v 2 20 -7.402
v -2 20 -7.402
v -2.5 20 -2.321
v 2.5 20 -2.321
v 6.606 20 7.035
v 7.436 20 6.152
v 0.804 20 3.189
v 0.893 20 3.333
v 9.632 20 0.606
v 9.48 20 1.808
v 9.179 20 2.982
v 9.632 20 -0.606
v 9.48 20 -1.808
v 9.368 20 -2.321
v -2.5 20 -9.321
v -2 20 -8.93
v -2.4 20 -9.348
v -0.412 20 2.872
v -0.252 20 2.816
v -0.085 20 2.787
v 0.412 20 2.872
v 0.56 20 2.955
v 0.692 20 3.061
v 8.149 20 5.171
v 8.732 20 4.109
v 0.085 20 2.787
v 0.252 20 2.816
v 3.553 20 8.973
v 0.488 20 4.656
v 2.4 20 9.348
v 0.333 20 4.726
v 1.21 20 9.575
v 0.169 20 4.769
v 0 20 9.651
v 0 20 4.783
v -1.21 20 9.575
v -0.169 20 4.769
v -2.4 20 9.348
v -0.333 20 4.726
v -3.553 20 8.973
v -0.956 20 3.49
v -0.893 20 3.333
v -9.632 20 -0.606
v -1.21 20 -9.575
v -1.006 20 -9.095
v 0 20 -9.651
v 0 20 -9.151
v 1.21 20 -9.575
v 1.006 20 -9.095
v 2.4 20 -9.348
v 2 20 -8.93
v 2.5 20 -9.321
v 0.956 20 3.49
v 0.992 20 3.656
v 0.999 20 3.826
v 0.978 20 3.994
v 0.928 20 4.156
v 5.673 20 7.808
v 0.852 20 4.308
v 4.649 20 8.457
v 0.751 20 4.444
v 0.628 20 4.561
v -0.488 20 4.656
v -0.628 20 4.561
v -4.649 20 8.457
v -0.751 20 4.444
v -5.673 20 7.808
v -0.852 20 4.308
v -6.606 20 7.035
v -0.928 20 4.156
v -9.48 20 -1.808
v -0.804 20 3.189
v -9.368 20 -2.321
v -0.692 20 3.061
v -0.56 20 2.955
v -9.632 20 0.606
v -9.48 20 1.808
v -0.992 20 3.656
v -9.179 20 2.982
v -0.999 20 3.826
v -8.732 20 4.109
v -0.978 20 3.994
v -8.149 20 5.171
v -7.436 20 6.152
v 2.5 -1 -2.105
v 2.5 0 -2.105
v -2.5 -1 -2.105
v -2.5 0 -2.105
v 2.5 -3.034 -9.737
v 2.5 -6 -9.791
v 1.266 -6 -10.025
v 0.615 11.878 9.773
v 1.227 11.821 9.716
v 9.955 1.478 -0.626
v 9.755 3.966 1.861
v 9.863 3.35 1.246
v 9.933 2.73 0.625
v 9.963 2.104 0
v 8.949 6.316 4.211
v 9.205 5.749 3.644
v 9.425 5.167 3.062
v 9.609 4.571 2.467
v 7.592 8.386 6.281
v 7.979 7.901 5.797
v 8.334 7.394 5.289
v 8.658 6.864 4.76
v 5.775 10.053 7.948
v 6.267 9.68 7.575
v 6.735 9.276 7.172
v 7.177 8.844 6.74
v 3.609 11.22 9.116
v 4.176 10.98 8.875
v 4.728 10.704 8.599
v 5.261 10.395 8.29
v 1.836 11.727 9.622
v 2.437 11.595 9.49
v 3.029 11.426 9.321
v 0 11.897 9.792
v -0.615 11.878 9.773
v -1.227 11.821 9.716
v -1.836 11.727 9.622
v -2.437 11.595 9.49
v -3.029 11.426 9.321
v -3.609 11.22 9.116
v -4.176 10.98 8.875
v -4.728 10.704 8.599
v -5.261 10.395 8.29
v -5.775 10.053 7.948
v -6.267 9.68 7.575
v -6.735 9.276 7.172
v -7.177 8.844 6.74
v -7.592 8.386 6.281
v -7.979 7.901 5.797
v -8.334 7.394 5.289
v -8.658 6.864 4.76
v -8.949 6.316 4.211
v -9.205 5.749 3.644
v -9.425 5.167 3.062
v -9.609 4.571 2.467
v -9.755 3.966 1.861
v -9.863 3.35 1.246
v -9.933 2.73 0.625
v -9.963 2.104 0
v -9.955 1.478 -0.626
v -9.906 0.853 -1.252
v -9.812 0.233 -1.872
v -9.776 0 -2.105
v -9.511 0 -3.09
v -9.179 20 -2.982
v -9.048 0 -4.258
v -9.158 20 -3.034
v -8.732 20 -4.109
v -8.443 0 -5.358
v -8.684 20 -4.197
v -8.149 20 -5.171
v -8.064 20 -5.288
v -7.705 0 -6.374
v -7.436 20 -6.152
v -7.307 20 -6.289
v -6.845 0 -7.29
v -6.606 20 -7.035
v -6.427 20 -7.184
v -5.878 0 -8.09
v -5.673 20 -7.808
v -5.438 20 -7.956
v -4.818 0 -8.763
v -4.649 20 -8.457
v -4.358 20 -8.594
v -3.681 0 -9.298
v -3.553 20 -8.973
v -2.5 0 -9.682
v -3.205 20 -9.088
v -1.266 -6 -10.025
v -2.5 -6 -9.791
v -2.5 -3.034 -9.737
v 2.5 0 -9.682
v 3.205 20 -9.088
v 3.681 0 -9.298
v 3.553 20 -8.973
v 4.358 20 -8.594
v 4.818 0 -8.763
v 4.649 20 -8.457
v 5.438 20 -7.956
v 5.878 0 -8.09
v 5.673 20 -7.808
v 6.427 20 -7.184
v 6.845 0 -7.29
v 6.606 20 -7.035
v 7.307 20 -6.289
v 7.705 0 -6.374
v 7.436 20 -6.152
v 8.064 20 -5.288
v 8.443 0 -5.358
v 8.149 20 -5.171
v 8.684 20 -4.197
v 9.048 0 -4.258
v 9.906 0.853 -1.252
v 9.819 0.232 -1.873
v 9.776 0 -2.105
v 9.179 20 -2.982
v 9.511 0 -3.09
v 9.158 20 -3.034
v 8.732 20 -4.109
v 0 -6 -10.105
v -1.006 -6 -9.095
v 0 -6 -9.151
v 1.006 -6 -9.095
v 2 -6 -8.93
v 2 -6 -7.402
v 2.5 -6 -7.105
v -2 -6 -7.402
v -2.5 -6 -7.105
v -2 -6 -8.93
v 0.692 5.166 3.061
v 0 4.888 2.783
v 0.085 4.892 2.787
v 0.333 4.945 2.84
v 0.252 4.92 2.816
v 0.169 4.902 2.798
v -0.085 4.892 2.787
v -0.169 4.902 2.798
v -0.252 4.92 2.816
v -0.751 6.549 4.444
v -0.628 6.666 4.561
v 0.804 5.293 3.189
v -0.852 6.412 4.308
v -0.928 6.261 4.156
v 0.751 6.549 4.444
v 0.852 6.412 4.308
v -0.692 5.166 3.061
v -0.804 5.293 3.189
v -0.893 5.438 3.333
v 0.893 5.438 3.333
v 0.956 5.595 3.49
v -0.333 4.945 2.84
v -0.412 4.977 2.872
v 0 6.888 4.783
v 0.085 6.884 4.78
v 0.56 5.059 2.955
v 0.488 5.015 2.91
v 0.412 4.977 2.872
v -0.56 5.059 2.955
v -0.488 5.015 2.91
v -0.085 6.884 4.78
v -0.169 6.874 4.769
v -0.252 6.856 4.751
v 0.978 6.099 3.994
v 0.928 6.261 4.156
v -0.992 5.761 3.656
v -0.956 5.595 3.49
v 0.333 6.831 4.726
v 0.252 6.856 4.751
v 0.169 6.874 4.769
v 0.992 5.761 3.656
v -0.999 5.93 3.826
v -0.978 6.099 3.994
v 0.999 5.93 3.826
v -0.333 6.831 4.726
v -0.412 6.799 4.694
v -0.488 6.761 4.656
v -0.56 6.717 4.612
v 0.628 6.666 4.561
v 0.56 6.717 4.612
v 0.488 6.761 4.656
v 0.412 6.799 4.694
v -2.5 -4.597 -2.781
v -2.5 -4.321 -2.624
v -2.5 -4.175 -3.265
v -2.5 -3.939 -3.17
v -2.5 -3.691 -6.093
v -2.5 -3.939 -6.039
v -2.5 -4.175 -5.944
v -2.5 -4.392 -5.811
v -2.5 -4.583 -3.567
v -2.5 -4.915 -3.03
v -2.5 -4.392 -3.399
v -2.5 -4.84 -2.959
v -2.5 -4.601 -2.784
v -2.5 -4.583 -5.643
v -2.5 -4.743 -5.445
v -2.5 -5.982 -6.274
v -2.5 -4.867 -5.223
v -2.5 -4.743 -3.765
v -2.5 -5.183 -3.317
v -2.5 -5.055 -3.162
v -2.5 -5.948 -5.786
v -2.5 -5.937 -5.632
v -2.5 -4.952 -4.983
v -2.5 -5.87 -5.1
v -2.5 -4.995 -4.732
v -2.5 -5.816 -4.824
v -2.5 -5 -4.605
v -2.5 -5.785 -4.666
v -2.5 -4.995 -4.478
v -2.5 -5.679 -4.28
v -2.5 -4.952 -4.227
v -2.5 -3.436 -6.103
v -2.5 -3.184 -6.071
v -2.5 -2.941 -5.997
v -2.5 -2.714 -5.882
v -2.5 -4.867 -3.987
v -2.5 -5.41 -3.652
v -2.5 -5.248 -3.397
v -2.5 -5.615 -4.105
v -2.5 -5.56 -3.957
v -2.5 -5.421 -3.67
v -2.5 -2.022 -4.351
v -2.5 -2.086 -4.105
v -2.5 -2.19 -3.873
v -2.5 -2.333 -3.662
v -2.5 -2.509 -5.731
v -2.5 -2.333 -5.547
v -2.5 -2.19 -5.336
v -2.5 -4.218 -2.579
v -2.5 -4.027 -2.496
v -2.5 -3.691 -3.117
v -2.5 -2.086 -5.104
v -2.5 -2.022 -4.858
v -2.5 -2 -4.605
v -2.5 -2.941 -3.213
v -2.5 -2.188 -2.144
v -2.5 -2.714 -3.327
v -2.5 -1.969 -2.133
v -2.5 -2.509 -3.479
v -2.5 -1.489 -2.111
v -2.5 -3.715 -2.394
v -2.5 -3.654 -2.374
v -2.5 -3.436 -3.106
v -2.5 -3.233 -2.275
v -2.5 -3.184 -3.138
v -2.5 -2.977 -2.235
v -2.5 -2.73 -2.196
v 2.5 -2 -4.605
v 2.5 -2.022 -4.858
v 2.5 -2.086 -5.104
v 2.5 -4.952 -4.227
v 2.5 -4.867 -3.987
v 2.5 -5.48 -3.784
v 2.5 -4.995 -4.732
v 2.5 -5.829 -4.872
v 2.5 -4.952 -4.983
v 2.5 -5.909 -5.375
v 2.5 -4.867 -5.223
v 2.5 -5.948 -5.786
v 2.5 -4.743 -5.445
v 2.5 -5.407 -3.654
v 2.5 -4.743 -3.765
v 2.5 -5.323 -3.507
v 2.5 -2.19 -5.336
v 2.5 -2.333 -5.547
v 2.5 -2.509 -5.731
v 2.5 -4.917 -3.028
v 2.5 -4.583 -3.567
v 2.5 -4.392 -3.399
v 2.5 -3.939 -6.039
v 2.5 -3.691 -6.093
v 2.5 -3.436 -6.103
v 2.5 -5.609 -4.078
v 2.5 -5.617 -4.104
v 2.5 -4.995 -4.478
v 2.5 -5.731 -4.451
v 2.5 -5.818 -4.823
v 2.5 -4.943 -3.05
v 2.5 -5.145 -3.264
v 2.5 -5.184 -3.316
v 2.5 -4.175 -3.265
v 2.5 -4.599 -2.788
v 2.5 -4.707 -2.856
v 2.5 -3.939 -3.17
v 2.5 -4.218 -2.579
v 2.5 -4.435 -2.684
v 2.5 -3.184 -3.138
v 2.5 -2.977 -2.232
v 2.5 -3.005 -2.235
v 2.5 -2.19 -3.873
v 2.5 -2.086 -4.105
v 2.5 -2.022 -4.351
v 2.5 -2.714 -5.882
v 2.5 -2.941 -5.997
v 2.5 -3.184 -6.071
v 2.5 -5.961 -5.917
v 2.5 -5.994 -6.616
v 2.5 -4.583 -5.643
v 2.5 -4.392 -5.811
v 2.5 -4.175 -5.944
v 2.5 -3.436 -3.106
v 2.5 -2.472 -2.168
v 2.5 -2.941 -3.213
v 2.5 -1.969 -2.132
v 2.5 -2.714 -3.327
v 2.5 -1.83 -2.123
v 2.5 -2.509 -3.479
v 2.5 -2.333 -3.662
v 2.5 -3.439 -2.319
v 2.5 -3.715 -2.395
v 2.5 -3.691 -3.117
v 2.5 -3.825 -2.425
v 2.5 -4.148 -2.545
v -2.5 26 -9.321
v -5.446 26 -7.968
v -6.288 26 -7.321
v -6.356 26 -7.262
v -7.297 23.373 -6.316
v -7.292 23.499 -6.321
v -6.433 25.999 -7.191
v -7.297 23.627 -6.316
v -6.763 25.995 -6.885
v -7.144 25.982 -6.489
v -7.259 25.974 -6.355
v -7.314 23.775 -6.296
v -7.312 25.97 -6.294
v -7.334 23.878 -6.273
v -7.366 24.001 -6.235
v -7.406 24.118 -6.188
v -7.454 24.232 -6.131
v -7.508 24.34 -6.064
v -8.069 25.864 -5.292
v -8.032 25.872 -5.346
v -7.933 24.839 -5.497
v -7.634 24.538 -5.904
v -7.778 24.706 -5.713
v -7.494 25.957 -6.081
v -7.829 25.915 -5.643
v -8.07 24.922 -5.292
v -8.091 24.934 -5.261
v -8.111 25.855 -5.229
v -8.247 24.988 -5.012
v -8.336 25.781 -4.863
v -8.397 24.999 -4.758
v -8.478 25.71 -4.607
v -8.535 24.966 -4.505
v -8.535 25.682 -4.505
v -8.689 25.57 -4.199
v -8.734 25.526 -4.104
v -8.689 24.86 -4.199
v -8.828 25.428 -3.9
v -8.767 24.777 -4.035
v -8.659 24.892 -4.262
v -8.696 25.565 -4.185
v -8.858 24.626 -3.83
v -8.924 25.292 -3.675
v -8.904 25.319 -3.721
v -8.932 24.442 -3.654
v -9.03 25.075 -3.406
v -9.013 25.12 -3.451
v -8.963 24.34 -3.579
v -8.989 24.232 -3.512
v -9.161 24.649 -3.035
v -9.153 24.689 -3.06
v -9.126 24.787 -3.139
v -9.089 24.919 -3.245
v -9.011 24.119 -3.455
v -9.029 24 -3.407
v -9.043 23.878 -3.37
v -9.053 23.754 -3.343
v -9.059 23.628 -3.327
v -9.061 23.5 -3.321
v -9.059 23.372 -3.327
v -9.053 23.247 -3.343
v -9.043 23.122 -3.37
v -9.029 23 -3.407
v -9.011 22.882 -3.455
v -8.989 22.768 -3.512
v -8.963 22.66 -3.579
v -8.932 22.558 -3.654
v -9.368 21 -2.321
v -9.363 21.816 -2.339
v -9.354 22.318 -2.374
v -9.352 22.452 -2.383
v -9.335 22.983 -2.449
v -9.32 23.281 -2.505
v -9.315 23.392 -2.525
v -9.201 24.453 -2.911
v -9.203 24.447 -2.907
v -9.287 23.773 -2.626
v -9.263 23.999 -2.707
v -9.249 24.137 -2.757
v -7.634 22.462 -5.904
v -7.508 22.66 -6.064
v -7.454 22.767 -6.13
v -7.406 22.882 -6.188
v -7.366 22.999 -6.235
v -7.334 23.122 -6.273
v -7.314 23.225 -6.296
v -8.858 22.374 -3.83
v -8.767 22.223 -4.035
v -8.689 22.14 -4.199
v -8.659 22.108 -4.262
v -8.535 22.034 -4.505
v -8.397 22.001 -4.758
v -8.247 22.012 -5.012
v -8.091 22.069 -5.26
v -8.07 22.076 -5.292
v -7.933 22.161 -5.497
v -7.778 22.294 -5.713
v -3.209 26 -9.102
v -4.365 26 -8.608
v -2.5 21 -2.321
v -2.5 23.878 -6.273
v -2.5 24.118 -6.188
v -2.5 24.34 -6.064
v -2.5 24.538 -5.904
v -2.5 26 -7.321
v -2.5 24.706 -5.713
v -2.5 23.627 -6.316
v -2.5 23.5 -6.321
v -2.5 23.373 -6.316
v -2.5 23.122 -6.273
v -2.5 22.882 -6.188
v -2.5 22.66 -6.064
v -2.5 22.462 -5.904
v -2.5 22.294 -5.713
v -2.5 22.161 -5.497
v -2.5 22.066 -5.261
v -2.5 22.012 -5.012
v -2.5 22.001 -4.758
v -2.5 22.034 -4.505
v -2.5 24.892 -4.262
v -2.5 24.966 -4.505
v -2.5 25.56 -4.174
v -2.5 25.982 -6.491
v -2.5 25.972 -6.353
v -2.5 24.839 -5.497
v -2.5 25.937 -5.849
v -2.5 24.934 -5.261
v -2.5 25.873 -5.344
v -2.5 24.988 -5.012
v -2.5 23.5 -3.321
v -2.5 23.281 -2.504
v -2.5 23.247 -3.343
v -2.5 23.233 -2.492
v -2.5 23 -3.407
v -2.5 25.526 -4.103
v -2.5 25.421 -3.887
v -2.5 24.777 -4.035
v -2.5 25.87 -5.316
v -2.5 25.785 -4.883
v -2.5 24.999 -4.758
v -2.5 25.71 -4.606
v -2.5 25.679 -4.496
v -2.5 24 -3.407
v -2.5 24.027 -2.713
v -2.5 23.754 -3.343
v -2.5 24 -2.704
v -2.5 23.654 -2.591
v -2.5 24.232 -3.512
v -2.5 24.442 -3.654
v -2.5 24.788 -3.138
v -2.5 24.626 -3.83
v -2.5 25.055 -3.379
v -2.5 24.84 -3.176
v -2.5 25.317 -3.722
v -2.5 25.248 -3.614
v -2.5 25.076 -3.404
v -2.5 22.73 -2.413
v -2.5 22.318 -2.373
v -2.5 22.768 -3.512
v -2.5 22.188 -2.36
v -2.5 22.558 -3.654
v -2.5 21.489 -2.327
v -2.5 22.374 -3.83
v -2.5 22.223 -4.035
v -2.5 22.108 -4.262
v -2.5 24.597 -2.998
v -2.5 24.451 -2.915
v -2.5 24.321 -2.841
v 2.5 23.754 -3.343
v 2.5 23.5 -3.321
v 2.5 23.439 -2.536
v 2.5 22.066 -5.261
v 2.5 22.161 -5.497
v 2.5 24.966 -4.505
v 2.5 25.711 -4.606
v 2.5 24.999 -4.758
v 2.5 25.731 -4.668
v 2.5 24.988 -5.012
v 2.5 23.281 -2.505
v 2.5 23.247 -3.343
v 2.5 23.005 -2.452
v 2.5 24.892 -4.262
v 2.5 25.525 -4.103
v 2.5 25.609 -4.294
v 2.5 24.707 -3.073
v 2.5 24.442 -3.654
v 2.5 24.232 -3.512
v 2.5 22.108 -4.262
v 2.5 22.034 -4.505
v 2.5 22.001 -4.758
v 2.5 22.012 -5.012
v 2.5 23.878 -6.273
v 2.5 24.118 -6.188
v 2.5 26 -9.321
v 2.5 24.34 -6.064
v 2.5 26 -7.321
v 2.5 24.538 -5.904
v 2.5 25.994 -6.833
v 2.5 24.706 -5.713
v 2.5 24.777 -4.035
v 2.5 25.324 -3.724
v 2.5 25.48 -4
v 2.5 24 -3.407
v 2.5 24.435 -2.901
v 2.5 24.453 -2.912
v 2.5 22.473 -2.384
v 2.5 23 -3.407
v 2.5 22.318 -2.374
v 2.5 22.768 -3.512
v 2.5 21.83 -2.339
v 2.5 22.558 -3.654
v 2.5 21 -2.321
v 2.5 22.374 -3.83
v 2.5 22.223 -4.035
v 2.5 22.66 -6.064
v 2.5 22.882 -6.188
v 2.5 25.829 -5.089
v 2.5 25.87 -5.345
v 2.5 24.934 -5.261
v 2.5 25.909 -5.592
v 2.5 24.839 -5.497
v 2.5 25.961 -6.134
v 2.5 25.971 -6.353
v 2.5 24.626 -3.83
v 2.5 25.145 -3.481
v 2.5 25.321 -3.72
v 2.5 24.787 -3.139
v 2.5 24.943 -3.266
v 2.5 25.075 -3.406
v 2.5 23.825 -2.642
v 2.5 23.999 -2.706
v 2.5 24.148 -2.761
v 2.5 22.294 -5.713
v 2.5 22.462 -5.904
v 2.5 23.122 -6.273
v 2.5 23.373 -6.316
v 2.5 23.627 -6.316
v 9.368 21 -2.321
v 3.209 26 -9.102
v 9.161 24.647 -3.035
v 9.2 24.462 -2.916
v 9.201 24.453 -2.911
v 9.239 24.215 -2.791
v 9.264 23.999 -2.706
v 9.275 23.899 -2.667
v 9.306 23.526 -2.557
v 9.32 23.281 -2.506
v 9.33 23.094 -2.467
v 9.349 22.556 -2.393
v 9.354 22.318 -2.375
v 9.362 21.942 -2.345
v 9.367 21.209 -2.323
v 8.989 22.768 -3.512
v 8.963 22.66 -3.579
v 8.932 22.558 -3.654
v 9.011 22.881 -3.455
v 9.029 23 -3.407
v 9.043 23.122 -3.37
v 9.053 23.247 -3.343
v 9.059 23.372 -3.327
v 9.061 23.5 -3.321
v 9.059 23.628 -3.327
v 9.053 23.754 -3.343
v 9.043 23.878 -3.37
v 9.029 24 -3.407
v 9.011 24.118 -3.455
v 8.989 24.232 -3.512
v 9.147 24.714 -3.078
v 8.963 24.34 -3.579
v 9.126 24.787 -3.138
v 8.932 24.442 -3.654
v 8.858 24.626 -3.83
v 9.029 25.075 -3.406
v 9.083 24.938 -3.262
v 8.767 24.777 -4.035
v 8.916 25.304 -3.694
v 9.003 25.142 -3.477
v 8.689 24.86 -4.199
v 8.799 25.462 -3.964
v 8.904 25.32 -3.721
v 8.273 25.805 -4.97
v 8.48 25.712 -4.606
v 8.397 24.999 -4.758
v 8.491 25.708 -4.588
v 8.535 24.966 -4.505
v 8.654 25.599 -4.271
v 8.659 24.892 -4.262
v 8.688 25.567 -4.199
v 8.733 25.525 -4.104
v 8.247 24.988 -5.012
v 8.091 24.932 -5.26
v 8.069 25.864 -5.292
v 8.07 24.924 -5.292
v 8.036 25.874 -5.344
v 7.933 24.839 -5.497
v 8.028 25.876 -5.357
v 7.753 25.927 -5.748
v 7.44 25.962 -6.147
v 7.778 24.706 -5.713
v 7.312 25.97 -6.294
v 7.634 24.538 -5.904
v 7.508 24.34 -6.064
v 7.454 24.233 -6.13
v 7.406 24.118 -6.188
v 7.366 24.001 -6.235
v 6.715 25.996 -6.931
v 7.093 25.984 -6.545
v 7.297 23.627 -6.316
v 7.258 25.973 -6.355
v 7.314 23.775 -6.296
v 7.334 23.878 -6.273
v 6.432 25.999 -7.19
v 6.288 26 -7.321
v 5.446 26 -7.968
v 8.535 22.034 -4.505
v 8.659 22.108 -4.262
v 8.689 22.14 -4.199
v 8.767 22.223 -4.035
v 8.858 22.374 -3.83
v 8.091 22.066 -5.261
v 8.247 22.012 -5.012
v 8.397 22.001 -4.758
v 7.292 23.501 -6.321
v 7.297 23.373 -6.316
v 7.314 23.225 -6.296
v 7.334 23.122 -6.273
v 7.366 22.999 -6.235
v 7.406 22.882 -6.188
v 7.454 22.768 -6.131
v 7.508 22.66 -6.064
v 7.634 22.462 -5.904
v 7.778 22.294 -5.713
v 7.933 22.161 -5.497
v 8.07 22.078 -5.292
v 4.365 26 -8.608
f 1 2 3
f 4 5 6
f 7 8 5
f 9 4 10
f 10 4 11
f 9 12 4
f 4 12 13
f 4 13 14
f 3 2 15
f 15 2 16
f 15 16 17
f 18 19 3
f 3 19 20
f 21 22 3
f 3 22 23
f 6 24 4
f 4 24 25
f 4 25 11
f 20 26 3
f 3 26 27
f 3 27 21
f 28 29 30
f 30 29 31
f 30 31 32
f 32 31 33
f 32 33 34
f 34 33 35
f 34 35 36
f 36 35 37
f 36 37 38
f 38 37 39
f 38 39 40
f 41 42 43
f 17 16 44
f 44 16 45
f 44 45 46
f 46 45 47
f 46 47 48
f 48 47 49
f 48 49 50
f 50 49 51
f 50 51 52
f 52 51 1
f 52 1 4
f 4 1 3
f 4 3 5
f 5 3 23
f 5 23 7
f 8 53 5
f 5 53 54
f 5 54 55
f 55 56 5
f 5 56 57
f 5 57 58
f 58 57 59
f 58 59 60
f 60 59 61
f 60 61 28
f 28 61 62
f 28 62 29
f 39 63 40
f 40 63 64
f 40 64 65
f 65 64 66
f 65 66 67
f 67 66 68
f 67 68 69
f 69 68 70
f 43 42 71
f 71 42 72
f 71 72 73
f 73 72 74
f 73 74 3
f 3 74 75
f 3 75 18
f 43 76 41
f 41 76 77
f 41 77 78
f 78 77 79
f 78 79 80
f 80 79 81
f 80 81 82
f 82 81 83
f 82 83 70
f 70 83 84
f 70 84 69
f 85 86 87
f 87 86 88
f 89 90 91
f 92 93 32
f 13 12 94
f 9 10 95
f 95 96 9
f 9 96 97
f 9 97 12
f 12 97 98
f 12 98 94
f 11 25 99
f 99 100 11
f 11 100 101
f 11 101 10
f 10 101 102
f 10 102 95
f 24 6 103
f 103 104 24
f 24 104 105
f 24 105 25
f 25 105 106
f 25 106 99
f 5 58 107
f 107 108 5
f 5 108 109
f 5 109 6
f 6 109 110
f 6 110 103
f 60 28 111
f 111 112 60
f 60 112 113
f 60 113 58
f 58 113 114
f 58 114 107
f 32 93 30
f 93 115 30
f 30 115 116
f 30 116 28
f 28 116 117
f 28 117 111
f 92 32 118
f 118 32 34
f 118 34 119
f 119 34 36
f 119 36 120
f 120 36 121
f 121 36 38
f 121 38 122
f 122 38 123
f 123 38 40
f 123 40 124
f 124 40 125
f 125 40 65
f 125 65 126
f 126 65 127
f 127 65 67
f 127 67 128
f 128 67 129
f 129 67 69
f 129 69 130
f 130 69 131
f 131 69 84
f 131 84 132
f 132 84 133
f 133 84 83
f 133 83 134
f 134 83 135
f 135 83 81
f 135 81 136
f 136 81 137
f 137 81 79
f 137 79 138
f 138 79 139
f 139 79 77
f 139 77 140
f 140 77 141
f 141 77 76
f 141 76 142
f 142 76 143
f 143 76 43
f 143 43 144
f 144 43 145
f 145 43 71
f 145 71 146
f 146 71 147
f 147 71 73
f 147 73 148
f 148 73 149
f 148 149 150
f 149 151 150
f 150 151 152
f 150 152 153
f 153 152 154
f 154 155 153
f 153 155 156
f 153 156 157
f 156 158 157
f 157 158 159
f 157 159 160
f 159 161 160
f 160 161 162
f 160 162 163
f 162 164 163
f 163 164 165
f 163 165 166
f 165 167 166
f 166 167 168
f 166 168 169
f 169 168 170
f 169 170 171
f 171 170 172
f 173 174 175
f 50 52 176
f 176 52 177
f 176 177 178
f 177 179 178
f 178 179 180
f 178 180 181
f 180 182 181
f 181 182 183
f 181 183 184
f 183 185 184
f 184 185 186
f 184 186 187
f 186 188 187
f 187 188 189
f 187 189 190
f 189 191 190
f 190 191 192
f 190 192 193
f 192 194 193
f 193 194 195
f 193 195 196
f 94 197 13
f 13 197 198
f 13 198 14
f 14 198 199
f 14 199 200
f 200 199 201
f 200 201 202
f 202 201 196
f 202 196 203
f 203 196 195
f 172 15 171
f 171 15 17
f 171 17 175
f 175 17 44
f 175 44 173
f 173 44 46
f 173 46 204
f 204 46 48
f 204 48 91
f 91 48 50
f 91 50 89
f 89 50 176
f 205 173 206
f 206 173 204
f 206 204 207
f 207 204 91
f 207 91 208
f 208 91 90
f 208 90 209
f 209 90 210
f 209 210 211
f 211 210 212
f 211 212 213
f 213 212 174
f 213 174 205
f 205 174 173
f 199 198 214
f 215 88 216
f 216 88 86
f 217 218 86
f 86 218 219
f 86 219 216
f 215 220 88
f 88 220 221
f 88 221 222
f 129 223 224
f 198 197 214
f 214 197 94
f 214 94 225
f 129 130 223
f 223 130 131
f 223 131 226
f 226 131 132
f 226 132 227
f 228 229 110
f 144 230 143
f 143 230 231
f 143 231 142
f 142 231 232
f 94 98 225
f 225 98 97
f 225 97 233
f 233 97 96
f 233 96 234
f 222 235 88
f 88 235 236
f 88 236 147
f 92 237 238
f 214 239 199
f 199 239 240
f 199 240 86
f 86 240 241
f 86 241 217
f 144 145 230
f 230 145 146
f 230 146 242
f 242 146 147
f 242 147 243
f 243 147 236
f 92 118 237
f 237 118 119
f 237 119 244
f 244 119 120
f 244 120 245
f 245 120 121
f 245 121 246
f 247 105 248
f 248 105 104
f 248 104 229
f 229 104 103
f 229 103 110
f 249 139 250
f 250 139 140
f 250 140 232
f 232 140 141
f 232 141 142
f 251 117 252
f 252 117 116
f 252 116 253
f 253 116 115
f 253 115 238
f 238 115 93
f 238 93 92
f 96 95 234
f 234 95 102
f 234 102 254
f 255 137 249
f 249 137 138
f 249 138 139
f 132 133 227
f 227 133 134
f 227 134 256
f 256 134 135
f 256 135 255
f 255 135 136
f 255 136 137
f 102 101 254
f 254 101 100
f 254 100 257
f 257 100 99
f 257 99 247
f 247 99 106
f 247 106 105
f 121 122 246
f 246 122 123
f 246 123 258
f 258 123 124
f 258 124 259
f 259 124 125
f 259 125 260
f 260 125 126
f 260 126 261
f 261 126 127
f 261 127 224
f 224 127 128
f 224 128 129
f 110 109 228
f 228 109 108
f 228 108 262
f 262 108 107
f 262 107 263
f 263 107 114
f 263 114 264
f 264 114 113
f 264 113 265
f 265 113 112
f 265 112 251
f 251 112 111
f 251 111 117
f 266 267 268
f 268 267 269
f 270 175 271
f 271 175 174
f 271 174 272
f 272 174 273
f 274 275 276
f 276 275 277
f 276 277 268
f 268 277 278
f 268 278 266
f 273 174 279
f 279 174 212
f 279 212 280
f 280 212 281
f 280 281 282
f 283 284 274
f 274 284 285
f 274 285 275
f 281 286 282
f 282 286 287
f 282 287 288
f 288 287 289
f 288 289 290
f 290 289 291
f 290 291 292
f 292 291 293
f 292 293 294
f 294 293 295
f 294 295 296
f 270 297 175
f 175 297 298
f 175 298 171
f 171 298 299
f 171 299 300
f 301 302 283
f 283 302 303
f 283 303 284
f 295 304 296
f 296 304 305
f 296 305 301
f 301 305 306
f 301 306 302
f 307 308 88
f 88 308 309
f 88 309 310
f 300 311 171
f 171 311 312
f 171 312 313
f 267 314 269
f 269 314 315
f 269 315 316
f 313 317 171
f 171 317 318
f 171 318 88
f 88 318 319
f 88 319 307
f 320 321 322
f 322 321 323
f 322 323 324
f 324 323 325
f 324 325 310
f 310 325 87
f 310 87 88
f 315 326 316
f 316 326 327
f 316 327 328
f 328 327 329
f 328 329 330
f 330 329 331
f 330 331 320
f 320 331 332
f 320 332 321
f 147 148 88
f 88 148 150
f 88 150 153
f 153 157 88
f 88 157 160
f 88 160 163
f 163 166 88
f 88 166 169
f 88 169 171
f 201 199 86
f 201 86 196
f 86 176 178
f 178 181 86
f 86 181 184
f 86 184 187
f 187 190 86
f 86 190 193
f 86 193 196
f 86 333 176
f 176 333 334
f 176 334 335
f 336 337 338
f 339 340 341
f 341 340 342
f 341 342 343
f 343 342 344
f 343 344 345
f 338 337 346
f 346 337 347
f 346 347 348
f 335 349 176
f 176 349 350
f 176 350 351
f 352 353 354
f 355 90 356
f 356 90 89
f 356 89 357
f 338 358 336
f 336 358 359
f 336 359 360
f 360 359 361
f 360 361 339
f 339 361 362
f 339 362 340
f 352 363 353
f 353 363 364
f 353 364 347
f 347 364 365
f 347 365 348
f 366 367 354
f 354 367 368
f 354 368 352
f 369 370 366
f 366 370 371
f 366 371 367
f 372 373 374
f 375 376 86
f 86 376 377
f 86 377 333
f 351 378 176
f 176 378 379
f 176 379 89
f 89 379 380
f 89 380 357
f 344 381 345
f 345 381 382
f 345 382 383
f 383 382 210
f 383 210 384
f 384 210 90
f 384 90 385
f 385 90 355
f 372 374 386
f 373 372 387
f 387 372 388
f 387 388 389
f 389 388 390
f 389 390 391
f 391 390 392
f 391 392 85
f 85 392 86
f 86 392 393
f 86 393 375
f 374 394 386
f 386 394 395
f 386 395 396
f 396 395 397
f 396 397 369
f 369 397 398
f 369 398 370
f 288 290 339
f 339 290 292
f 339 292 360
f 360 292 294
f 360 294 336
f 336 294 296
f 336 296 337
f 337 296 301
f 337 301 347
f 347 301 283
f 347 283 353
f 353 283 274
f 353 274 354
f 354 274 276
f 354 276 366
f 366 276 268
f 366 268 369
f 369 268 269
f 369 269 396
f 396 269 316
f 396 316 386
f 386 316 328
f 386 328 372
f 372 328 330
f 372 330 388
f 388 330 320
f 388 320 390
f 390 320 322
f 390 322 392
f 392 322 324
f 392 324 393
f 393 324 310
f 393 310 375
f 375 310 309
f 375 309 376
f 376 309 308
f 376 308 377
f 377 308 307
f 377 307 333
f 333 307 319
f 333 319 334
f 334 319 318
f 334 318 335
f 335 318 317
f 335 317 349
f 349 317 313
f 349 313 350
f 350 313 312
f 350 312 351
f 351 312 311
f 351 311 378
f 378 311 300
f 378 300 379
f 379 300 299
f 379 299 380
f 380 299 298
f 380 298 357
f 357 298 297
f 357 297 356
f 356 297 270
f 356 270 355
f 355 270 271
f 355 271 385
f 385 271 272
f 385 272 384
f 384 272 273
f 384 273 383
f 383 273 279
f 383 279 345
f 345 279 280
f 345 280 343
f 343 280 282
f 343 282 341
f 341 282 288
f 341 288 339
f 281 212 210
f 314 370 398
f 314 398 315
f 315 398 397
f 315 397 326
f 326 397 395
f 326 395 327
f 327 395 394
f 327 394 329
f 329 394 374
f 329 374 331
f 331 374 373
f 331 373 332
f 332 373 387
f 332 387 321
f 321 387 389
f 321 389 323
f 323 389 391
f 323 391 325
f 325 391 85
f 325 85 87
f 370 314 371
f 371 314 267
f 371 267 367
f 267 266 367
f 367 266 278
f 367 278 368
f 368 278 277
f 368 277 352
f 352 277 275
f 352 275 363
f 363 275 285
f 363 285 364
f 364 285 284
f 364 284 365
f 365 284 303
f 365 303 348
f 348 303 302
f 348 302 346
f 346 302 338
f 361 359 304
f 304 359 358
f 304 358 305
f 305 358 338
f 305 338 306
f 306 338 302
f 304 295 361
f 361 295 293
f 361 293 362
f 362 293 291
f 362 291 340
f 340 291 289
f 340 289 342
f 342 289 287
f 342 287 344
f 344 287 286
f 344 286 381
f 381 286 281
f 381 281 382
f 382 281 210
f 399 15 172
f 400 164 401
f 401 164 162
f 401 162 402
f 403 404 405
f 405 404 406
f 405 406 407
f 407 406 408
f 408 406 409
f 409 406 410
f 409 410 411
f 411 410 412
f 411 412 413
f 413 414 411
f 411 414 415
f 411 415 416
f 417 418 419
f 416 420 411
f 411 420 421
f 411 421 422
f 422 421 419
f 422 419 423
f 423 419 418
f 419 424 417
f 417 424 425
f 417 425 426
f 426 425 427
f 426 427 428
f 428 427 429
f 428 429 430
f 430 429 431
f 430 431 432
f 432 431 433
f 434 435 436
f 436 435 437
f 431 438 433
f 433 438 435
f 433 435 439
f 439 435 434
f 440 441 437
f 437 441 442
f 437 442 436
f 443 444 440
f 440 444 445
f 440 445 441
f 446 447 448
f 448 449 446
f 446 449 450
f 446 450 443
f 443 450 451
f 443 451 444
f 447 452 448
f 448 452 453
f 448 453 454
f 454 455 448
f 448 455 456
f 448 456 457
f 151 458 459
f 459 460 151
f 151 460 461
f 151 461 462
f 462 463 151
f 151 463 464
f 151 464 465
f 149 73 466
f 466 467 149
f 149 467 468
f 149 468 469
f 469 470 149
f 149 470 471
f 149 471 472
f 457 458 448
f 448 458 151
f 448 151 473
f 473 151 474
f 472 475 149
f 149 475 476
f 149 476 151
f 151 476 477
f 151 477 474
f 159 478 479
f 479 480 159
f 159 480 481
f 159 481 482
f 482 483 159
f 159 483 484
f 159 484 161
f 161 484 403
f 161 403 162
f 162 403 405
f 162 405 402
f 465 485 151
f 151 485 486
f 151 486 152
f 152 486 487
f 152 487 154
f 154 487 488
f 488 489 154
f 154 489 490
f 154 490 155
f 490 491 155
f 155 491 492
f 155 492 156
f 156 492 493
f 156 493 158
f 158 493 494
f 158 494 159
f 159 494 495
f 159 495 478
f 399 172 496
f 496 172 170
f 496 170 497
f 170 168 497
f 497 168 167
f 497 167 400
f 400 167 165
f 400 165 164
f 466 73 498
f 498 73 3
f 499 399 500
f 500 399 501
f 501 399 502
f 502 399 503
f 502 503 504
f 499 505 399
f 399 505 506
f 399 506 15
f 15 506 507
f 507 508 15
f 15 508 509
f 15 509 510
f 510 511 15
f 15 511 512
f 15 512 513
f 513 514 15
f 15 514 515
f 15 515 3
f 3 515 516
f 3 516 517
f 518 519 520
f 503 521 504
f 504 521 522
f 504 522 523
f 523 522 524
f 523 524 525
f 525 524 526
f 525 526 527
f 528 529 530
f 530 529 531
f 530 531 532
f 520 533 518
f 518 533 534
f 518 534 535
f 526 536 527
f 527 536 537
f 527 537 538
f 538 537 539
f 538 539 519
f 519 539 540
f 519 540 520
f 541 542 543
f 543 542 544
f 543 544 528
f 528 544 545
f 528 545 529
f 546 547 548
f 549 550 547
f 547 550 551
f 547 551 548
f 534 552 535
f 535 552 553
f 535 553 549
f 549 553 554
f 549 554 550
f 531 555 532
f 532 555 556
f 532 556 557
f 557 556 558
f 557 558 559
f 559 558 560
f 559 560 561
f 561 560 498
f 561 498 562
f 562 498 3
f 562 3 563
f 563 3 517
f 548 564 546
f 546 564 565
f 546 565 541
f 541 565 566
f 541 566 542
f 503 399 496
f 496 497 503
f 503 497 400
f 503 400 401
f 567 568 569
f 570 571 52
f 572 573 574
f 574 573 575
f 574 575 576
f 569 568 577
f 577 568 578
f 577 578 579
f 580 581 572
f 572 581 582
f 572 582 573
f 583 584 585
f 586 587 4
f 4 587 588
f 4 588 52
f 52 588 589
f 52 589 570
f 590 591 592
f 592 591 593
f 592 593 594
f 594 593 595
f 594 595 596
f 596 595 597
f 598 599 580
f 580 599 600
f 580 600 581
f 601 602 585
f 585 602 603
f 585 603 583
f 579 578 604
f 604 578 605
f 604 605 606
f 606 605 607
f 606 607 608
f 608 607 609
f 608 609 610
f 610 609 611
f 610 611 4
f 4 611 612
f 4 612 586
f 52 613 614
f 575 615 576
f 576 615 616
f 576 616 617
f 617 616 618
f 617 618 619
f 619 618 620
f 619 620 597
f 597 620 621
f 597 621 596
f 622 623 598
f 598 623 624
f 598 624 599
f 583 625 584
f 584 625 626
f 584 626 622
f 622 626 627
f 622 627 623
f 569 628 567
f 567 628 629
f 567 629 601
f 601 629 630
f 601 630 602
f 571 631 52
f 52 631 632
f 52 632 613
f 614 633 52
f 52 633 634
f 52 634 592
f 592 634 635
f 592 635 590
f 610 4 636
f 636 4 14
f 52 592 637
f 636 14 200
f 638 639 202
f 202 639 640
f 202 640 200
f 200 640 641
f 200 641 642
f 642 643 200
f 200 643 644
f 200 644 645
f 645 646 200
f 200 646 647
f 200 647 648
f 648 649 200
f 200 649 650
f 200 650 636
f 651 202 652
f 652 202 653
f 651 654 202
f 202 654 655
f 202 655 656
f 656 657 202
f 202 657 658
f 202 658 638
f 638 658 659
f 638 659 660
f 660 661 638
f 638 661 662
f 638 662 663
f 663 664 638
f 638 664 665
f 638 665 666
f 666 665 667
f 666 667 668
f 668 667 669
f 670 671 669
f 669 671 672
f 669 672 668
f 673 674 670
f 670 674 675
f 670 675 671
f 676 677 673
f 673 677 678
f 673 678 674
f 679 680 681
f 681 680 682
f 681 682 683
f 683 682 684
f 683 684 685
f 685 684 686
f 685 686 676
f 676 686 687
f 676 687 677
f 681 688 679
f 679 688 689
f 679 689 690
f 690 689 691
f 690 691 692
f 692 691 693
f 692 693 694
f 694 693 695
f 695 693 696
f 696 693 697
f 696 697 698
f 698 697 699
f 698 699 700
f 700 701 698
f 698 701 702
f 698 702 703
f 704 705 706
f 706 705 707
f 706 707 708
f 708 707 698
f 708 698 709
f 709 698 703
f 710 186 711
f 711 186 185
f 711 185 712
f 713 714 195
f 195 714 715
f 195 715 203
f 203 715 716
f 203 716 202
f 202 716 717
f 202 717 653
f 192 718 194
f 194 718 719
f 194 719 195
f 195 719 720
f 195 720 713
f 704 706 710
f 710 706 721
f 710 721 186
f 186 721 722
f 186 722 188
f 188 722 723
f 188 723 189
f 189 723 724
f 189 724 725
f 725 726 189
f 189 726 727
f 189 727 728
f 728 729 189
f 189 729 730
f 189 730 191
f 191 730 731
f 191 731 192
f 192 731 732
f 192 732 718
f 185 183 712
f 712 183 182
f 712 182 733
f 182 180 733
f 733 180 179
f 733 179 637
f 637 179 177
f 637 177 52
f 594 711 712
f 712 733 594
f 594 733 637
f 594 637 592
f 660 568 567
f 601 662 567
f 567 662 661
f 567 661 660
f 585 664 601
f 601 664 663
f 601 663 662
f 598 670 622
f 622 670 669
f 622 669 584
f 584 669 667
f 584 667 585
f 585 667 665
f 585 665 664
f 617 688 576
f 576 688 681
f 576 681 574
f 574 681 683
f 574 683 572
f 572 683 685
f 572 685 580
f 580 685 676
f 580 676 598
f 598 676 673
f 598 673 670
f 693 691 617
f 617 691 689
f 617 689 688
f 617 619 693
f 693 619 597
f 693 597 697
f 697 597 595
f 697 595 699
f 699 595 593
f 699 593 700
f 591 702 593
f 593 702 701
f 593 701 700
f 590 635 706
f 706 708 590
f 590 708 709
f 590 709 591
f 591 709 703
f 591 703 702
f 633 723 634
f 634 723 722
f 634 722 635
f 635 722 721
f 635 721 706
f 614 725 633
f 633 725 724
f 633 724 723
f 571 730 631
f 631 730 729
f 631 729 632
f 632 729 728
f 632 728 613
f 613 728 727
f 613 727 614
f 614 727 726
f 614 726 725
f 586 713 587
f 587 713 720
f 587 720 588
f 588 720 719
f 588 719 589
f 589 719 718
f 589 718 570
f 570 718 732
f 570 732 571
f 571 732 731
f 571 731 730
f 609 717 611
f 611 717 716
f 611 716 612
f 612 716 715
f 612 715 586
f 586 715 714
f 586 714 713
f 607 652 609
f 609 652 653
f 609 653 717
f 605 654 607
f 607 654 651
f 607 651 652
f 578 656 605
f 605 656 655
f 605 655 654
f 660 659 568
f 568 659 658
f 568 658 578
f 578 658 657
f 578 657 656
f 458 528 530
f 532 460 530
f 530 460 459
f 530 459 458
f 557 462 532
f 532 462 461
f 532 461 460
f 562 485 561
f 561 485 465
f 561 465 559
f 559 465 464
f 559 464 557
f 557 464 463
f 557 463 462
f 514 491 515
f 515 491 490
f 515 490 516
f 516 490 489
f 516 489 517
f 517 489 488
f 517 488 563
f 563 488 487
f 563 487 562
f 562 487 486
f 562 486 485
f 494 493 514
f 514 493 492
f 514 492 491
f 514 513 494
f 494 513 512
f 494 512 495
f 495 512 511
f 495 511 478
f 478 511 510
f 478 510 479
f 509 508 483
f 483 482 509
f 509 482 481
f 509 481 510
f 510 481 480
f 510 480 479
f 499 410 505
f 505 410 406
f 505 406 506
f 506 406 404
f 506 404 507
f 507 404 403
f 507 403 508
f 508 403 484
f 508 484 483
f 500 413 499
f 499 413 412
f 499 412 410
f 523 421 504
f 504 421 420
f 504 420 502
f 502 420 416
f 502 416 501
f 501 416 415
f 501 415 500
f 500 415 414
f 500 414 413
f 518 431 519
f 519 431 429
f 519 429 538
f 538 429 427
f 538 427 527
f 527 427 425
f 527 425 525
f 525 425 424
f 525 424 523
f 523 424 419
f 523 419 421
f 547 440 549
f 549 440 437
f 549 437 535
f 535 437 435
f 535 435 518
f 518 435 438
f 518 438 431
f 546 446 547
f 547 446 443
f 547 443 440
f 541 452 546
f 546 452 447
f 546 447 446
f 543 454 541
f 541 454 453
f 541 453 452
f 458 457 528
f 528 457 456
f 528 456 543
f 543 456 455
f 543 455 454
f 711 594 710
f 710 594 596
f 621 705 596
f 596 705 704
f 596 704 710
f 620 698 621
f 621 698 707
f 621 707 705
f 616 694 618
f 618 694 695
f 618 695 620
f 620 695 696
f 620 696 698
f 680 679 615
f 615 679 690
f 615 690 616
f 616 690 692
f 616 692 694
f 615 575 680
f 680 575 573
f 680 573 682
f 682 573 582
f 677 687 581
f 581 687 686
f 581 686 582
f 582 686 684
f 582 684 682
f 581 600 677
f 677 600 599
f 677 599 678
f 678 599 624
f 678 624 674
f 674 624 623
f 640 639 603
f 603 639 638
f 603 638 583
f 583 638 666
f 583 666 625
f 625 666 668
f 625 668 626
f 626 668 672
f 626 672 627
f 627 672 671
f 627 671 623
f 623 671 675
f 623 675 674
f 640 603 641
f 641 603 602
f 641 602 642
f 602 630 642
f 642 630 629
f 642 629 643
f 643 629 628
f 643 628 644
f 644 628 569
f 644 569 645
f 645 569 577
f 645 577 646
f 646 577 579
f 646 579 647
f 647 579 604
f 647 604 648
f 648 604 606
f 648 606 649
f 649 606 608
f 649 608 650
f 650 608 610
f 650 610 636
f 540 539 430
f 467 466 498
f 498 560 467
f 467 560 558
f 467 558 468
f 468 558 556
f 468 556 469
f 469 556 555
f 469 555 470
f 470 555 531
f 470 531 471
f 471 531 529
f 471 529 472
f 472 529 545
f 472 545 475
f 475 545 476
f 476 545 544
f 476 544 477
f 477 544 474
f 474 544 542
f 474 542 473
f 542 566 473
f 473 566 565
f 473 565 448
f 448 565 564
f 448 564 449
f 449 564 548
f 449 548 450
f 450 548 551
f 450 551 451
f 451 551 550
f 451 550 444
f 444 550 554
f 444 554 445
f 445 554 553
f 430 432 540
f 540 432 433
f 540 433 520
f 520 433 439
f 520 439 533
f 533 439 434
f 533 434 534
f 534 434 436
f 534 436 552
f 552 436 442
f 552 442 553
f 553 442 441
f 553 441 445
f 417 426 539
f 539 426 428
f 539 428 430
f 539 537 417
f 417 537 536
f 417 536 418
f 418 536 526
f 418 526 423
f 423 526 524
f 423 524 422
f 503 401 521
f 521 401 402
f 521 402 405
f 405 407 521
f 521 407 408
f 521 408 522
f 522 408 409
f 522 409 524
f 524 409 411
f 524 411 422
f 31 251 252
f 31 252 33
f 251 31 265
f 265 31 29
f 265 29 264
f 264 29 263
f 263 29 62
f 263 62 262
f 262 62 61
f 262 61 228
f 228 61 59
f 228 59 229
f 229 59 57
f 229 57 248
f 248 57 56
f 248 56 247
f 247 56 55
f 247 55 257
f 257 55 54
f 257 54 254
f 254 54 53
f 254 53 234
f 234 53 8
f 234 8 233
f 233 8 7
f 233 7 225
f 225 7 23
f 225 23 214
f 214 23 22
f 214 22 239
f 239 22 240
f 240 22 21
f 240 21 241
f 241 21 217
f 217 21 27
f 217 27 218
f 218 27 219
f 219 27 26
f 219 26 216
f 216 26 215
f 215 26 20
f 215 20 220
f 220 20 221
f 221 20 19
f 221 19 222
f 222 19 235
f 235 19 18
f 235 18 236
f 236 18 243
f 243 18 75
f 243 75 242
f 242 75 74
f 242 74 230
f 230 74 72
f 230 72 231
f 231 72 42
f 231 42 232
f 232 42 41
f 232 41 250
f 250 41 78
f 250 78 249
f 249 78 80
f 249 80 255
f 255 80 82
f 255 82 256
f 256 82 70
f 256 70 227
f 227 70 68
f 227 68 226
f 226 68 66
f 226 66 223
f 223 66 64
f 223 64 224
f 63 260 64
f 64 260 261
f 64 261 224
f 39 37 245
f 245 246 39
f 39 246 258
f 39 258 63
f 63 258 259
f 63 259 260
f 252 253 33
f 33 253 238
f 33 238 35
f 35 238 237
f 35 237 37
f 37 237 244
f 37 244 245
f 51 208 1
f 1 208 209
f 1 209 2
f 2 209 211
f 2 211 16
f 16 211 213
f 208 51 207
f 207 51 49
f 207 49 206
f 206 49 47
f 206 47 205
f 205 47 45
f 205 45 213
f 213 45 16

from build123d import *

# Parameters (mm, degrees)
SKETCH1_R                     = 10
BOSS_EXTRUDE1_DEPTH           = 20
BOSS_EXTRUDE1_TAPER           = 1
BOSS_EXTRUDE1_OTHER_WAY_DEPTH = 6
BOSS_EXTRUDE1_OTHER_WAY_TAPER = -1
CUT_EXTRUDE1_DEPTH            = 25.580706916
CUT_EXTRUDE1_DEPTH_BACK       = 25.580706916
SKETCH3_W                     = 8.405788387
SKETCH3_H                     = 6
SKETCH3_W_2                   = 8.899014998
CUT_EXTRUDE2_DEPTH            = 26.314759228
SKETCH4_R                     = 1.5
CUT_EXTRUDE3_DEPTH            = 20
FILLET1_SIZE                  = 5
BOSS_EXTRUDE2_DEPTH           = 6
CUT_EXTRUDE4_DEPTH            = 31.552844708
CUT_EXTRUDE4_DEPTH_BACK       = 31.552844708
SKETCH6_R                     = 1.5
FILLET2_SIZE                  = 5
SKETCH7_R                     = 1
CUT_EXTRUDE5_DEPTH            = 30.62097947
CUT_EXTRUDE6_DEPTH            = 30.62097947


with BuildPart() as part:
    # Sketch1 → Boss-Extrude1 (new body)
    with BuildSketch(Plane(origin=(0, 0, 0), x_dir=(1, 0, 0), z_dir=(0, 1, 0))):
        Circle(SKETCH1_R)
    extrude(amount=BOSS_EXTRUDE1_DEPTH, taper=BOSS_EXTRUDE1_TAPER)

    # Sketch1 → Boss-Extrude1 other way (add)
    with BuildSketch(Plane(origin=(0, 0, 0), x_dir=(1, 0, 0), z_dir=(0, 1, 0))):
        Circle(SKETCH1_R)
    extrude(amount=-BOSS_EXTRUDE1_OTHER_WAY_DEPTH, taper=BOSS_EXTRUDE1_OTHER_WAY_TAPER)

    # Sketch2 → Cut-Extrude1 (cut, two sides: drawn at the far end of the back side and taken through both)
    with BuildSketch(Plane(origin=(0, 0, 0), x_dir=(0, 0, -1), z_dir=(1, 0, 0)).offset(-CUT_EXTRUDE1_DEPTH_BACK)):
        Polygon((2.10473039, -6), (2.10473039, 0), (-12.119911375, 14.224641764), (-12.119911375, -6), align=None)
    extrude(amount=CUT_EXTRUDE1_DEPTH + CUT_EXTRUDE1_DEPTH_BACK, mode=Mode.SUBTRACT)

    # Sketch3 → Cut-Extrude2 (cut, through all)
    with BuildSketch(Plane.XY.offset(-2.10473039)):
        with Locations((-6.702894194, -3)):
            Rectangle(SKETCH3_W, SKETCH3_H)
        with Locations((6.949507499, -3)):
            Rectangle(SKETCH3_W_2, SKETCH3_H)
    extrude(amount=-CUT_EXTRUDE2_DEPTH, mode=Mode.SUBTRACT)

    # Sketch4 → Cut-Extrude3 (cut)
    with BuildSketch(Plane(origin=(2.5, 0, 0), x_dir=(0, 0, -1), z_dir=(1, 0, 0))):
        with Locations(Location((4.60473039, -3.5, 0), (0, 0, 90))):
            Circle(SKETCH4_R)
    extrude(amount=-CUT_EXTRUDE3_DEPTH, mode=Mode.SUBTRACT)

    # Fillet1
    # a fillet whose section is not a circle: 5 mm, written as the material it takes off along each edge
    with BuildSketch(Plane(origin=(15, -6, -2.10473039), x_dir=(0, 0, -1), z_dir=(-1, 0, 0))) as fillet1_piece_1:
        with BuildLine():
            Bezier((FILLET1_SIZE, 0), (0, 0), (0, -FILLET1_SIZE), weights=[1, 1.5, 1])
            Line((0, -FILLET1_SIZE), (0, 0))
            Line((0, 0), (FILLET1_SIZE, 0))
        make_face()
    extrude(amount=30, mode=Mode.SUBTRACT)

    # Sketch5 → Boss-Extrude2 (add)
    with BuildSketch(Plane(origin=(0, 20, 0), x_dir=(1, 0, 0), z_dir=(0, 1, 0))):
        with BuildLine():
            Line((-2.5, 2.321472295), (-2.5, 9.321472295))
            ThreePointArc((-2.5, 9.321472295), (-6.889090297, 6.75871886), (-9.367529671, 2.321472295))
            Line((-9.367529671, 2.321472295), (-2.5, 2.321472295))
        make_face()
        with BuildLine():
            ThreePointArc((9.367529671, 2.321472295), (6.889090297, 6.75871886), (2.5, 9.321472295))
            Line((2.5, 9.321472295), (2.5, 2.321472295))
            Line((2.5, 2.321472295), (9.367529671, 2.321472295))
        make_face()
    extrude(amount=BOSS_EXTRUDE2_DEPTH)

    # Sketch6 → Cut-Extrude4 (cut, two sides: drawn at the far end of the back side and taken through both)
    with BuildSketch(Plane.ZY.offset(-2.5).offset(-CUT_EXTRUDE4_DEPTH_BACK)):
        with Locations((-4.821472295, 23.5)):
            Circle(SKETCH6_R)
    extrude(amount=CUT_EXTRUDE4_DEPTH + CUT_EXTRUDE4_DEPTH_BACK, mode=Mode.SUBTRACT)

    # Fillet2
    # a fillet whose section is not a circle: 5 mm, written as the material it takes off along each edge
    with BuildSketch(Plane(origin=(-10, 26, -2.321472295), x_dir=(0, -1, 0), z_dir=(1, 0, 0)), Plane(origin=(-21.867529671, 26, -2.321472295), x_dir=(0, -1, 0), z_dir=(1, 0, 0))) as fillet2_piece_1:
        with BuildLine():
            Bezier((FILLET2_SIZE, 0), (0, 0), (0, FILLET2_SIZE), weights=[1, 1.5, 1])
            Line((0, FILLET2_SIZE), (0, 0))
            Line((0, 0), (FILLET2_SIZE, 0))
        make_face()
    extrude(amount=31.867529671, mode=Mode.SUBTRACT)

    # Sketch7 → Cut-Extrude5 (cut, through all)
    with BuildSketch(Plane(origin=(0, 20, 0), x_dir=(1, 0, 0), z_dir=(0, 1, 0))):
        with Locations(Location((0, -3.783258095, 0), (0, 0, 270))):
            Circle(SKETCH7_R)
    extrude(amount=-CUT_EXTRUDE5_DEPTH, mode=Mode.SUBTRACT)

    # Sketch8 → Cut-Extrude6 (cut, through all)
    with BuildSketch(Plane(origin=(0, 20, 0), x_dir=(1, 0, 0), z_dir=(0, 1, 0))):
        with BuildLine():
            Line((2, 7.402414096), (2, 8.929666682))
            ThreePointArc((2, 8.929666682), (0, 9.150898701), (-2, 8.929666682))
            Line((-2, 8.929666682), (-2, 7.402414096))
            Line((-2, 7.402414096), (2, 7.402414096))
        make_face()
    extrude(amount=-CUT_EXTRUDE6_DEPTH, mode=Mode.SUBTRACT)


solid = part.part
